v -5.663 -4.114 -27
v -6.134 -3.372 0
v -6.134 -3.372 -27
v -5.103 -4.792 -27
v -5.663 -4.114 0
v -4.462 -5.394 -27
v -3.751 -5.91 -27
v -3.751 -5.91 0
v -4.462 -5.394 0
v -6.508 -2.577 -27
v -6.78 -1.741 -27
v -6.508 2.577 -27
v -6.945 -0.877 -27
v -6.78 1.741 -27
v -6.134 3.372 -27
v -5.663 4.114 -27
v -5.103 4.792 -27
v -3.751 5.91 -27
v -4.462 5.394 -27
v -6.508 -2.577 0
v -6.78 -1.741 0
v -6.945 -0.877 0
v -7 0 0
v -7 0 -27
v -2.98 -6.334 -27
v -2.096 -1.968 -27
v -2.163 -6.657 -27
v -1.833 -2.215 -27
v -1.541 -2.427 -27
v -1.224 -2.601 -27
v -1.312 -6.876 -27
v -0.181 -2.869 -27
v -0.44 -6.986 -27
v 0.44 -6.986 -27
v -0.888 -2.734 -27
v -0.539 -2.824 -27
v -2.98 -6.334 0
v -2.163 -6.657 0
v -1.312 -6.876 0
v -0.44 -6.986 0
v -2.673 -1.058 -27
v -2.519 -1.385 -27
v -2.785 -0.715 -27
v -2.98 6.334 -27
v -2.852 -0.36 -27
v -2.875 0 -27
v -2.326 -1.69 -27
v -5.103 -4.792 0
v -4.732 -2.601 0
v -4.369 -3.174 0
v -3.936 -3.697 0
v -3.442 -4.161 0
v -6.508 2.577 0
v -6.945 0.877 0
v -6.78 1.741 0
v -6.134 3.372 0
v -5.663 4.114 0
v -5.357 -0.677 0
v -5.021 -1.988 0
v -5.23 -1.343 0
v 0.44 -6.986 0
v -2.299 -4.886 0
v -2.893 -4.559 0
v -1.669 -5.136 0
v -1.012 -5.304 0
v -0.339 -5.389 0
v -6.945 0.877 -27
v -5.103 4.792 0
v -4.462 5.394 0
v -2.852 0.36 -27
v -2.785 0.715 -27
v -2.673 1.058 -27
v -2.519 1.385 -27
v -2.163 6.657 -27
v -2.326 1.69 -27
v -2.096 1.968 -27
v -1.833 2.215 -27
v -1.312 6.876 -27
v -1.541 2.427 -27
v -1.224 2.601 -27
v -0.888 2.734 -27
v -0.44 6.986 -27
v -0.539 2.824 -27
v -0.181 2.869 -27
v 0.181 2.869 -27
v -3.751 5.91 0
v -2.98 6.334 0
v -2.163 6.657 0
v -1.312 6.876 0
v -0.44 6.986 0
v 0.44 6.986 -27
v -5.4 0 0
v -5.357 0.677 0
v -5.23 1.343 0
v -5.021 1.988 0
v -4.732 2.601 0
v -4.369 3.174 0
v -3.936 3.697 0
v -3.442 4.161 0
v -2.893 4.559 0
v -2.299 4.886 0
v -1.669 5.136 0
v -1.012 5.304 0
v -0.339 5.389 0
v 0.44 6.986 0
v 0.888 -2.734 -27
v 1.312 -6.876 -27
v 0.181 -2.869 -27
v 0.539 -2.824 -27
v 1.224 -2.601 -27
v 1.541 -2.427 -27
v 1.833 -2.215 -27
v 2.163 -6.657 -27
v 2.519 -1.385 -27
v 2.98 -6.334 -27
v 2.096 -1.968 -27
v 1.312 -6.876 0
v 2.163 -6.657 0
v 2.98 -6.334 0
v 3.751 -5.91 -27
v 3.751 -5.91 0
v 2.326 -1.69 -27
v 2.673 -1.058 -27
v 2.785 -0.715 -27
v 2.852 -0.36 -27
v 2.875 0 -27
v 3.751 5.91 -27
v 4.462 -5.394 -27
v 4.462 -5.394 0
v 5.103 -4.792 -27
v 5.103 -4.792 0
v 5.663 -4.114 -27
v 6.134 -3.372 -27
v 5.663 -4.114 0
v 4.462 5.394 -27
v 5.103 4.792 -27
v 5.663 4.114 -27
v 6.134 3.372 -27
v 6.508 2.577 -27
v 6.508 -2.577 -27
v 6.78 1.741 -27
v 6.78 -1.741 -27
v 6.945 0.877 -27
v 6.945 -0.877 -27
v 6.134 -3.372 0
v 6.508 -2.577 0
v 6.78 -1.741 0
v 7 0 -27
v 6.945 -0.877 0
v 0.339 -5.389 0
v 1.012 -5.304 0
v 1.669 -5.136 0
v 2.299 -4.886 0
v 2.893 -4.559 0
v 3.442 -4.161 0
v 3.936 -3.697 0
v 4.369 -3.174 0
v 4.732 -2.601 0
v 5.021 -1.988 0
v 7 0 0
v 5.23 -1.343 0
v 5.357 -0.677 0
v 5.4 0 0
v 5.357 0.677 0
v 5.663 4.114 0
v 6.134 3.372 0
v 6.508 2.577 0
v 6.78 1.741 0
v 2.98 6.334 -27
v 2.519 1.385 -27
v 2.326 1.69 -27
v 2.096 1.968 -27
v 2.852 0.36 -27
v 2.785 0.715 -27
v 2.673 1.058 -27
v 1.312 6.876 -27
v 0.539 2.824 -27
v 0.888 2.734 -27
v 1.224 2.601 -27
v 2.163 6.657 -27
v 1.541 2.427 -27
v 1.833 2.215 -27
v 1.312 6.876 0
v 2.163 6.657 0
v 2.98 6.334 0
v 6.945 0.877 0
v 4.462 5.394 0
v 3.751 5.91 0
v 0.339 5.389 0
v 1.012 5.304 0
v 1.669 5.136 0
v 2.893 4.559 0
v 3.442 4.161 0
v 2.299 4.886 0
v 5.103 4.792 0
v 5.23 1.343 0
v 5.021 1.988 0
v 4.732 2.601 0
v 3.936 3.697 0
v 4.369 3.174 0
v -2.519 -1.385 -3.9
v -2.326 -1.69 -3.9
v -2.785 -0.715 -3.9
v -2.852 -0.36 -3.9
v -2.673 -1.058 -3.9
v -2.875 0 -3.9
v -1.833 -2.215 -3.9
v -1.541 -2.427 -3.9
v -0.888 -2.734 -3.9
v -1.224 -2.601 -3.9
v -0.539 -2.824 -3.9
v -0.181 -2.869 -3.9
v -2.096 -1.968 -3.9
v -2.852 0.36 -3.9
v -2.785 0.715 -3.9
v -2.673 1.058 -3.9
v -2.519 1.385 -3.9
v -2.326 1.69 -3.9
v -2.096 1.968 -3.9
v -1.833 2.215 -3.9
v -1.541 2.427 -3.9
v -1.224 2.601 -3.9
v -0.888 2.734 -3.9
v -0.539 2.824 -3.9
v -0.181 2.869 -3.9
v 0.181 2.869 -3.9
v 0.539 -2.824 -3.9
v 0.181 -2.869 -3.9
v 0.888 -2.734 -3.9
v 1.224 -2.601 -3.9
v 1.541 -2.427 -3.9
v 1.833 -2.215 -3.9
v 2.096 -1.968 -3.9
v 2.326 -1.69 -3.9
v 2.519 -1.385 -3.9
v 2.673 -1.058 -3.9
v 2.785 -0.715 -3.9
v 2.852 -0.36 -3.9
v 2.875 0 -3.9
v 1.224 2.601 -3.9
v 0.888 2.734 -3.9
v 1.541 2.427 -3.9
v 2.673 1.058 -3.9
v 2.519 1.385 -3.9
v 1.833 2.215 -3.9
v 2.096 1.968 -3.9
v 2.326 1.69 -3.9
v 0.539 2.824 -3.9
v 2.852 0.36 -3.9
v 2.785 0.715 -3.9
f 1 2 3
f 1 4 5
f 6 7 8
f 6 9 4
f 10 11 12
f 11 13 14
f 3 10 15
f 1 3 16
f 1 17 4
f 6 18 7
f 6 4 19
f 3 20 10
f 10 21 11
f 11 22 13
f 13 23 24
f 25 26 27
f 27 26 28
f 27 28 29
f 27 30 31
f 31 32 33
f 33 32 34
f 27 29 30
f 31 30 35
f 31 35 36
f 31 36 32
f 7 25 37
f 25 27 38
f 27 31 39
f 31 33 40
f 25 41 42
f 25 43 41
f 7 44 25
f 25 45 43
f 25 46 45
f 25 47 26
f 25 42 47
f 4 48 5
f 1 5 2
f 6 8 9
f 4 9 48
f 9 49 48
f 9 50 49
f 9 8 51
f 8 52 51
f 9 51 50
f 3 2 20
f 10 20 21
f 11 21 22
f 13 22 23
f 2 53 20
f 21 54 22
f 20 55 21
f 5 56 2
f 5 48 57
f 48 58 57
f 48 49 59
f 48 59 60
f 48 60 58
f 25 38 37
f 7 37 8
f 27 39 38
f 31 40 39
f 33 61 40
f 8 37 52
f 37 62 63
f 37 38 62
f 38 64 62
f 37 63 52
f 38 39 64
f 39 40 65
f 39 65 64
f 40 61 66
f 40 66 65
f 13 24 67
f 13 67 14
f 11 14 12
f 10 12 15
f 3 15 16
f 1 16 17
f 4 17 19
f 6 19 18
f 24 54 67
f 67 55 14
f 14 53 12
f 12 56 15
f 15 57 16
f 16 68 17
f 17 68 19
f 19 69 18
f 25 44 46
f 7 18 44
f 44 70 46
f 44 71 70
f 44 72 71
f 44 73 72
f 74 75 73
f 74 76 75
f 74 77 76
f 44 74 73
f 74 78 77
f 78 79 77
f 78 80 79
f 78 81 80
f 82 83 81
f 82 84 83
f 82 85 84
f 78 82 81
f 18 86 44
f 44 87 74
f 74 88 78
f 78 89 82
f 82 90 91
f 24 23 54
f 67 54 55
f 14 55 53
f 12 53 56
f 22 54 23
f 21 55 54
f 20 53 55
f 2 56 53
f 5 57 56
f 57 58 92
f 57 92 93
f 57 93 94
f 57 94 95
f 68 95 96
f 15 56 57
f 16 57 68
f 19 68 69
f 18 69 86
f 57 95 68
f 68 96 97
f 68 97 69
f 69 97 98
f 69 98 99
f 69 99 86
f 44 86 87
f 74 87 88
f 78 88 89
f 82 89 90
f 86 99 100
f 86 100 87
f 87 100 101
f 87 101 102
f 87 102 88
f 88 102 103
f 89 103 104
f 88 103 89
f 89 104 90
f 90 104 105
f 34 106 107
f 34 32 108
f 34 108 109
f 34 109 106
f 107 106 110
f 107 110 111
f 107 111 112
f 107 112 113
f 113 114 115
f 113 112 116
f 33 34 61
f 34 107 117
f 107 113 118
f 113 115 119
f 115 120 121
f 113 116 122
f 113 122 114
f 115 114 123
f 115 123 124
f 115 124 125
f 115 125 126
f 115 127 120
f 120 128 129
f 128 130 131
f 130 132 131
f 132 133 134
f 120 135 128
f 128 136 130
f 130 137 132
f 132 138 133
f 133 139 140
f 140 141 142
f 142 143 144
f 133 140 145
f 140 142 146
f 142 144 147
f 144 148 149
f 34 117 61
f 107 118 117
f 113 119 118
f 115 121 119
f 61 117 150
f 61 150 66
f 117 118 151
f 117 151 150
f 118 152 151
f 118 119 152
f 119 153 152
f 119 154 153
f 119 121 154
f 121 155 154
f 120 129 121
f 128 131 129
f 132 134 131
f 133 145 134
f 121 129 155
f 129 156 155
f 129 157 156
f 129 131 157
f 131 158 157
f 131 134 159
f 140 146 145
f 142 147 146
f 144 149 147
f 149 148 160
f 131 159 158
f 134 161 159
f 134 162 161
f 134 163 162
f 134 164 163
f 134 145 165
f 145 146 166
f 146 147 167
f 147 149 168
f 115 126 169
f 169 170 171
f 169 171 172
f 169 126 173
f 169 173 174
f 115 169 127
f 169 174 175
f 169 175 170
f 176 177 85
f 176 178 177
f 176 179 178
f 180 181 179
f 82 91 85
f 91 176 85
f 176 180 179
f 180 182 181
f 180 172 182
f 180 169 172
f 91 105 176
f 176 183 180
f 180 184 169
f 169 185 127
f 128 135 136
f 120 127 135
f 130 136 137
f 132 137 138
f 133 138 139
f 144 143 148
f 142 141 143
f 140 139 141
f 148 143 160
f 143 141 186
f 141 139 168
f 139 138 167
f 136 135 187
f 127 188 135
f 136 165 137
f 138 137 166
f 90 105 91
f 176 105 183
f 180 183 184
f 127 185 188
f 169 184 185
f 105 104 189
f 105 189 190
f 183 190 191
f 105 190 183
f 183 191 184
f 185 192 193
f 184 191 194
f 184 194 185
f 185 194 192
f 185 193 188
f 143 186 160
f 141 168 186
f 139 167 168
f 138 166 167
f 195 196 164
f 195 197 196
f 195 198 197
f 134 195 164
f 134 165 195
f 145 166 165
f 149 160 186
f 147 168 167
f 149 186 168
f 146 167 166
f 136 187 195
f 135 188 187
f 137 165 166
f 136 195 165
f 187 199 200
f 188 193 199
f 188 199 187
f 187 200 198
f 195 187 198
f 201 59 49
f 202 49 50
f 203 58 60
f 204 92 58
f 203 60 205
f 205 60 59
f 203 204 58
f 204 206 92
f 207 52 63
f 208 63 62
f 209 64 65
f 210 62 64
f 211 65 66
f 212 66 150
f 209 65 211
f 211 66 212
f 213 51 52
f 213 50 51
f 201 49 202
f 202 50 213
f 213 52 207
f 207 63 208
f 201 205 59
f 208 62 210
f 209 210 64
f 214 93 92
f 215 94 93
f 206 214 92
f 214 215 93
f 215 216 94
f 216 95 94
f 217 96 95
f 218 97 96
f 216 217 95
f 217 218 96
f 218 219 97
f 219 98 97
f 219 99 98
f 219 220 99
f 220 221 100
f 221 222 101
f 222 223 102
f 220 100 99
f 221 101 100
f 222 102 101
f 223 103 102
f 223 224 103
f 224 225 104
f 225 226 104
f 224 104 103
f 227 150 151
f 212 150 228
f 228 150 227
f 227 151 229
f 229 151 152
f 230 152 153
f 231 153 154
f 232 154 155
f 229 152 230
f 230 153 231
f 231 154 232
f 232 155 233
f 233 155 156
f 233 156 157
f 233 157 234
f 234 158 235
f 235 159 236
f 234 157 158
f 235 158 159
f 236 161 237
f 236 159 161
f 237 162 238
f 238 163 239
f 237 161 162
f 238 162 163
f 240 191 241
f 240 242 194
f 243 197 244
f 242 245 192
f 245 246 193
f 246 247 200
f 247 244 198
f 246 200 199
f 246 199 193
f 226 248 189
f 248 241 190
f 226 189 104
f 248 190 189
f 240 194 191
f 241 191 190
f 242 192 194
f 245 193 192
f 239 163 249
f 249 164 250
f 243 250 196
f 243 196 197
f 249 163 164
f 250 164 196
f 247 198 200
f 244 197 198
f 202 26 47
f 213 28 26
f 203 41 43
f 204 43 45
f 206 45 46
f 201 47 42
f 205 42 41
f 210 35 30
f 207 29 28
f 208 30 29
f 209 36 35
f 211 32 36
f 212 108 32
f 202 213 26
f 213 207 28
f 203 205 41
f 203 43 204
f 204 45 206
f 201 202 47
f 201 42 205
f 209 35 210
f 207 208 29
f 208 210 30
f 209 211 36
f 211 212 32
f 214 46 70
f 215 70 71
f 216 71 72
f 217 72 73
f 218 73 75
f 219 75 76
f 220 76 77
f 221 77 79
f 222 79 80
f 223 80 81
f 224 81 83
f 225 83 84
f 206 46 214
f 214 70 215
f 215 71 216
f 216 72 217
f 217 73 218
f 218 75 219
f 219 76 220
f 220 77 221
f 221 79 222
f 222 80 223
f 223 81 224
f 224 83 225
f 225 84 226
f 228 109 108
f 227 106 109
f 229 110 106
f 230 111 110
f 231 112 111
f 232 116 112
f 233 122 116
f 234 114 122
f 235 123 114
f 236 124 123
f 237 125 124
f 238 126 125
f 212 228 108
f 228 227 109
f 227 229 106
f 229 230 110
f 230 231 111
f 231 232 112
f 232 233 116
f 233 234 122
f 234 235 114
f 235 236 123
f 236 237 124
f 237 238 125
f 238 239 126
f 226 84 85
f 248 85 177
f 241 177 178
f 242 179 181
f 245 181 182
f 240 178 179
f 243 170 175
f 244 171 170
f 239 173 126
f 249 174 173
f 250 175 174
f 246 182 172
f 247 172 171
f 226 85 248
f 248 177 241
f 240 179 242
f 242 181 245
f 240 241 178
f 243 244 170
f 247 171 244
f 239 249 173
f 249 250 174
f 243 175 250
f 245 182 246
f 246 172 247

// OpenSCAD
$fn = 50;

difference() {
	union() {
		translate(v = [0, 0, -27.0]) {
			cylinder(h = 27, r = 7.0);
		}
		#translate(v = [0, 0, -30.0]) {
			cylinder(h = 30, r = 2.875);
		}
	}
	union() {
		translate(v = [0, 0, 0]) {
			rotate(a = [0, 0, 0]) {
				difference() {
					union() {
						translate(v = [0, 0, -30.0]) {
							cylinder(h = 30, r = 2.6);
						}
						translate(v = [0, 0, -3.9]) {
							cylinder(h = 3.9, r1 = 2.875, r2 = 5.4);
						}
						translate(v = [0, 0, -30.0]) {
							cylinder(h = 30, r = 2.875);
						}
						translate(v = [0, 0, -30.0]) {
							cylinder(h = 30, r = 2.6);
						}
					}
					union();
				}
			}
		}
	}
}
